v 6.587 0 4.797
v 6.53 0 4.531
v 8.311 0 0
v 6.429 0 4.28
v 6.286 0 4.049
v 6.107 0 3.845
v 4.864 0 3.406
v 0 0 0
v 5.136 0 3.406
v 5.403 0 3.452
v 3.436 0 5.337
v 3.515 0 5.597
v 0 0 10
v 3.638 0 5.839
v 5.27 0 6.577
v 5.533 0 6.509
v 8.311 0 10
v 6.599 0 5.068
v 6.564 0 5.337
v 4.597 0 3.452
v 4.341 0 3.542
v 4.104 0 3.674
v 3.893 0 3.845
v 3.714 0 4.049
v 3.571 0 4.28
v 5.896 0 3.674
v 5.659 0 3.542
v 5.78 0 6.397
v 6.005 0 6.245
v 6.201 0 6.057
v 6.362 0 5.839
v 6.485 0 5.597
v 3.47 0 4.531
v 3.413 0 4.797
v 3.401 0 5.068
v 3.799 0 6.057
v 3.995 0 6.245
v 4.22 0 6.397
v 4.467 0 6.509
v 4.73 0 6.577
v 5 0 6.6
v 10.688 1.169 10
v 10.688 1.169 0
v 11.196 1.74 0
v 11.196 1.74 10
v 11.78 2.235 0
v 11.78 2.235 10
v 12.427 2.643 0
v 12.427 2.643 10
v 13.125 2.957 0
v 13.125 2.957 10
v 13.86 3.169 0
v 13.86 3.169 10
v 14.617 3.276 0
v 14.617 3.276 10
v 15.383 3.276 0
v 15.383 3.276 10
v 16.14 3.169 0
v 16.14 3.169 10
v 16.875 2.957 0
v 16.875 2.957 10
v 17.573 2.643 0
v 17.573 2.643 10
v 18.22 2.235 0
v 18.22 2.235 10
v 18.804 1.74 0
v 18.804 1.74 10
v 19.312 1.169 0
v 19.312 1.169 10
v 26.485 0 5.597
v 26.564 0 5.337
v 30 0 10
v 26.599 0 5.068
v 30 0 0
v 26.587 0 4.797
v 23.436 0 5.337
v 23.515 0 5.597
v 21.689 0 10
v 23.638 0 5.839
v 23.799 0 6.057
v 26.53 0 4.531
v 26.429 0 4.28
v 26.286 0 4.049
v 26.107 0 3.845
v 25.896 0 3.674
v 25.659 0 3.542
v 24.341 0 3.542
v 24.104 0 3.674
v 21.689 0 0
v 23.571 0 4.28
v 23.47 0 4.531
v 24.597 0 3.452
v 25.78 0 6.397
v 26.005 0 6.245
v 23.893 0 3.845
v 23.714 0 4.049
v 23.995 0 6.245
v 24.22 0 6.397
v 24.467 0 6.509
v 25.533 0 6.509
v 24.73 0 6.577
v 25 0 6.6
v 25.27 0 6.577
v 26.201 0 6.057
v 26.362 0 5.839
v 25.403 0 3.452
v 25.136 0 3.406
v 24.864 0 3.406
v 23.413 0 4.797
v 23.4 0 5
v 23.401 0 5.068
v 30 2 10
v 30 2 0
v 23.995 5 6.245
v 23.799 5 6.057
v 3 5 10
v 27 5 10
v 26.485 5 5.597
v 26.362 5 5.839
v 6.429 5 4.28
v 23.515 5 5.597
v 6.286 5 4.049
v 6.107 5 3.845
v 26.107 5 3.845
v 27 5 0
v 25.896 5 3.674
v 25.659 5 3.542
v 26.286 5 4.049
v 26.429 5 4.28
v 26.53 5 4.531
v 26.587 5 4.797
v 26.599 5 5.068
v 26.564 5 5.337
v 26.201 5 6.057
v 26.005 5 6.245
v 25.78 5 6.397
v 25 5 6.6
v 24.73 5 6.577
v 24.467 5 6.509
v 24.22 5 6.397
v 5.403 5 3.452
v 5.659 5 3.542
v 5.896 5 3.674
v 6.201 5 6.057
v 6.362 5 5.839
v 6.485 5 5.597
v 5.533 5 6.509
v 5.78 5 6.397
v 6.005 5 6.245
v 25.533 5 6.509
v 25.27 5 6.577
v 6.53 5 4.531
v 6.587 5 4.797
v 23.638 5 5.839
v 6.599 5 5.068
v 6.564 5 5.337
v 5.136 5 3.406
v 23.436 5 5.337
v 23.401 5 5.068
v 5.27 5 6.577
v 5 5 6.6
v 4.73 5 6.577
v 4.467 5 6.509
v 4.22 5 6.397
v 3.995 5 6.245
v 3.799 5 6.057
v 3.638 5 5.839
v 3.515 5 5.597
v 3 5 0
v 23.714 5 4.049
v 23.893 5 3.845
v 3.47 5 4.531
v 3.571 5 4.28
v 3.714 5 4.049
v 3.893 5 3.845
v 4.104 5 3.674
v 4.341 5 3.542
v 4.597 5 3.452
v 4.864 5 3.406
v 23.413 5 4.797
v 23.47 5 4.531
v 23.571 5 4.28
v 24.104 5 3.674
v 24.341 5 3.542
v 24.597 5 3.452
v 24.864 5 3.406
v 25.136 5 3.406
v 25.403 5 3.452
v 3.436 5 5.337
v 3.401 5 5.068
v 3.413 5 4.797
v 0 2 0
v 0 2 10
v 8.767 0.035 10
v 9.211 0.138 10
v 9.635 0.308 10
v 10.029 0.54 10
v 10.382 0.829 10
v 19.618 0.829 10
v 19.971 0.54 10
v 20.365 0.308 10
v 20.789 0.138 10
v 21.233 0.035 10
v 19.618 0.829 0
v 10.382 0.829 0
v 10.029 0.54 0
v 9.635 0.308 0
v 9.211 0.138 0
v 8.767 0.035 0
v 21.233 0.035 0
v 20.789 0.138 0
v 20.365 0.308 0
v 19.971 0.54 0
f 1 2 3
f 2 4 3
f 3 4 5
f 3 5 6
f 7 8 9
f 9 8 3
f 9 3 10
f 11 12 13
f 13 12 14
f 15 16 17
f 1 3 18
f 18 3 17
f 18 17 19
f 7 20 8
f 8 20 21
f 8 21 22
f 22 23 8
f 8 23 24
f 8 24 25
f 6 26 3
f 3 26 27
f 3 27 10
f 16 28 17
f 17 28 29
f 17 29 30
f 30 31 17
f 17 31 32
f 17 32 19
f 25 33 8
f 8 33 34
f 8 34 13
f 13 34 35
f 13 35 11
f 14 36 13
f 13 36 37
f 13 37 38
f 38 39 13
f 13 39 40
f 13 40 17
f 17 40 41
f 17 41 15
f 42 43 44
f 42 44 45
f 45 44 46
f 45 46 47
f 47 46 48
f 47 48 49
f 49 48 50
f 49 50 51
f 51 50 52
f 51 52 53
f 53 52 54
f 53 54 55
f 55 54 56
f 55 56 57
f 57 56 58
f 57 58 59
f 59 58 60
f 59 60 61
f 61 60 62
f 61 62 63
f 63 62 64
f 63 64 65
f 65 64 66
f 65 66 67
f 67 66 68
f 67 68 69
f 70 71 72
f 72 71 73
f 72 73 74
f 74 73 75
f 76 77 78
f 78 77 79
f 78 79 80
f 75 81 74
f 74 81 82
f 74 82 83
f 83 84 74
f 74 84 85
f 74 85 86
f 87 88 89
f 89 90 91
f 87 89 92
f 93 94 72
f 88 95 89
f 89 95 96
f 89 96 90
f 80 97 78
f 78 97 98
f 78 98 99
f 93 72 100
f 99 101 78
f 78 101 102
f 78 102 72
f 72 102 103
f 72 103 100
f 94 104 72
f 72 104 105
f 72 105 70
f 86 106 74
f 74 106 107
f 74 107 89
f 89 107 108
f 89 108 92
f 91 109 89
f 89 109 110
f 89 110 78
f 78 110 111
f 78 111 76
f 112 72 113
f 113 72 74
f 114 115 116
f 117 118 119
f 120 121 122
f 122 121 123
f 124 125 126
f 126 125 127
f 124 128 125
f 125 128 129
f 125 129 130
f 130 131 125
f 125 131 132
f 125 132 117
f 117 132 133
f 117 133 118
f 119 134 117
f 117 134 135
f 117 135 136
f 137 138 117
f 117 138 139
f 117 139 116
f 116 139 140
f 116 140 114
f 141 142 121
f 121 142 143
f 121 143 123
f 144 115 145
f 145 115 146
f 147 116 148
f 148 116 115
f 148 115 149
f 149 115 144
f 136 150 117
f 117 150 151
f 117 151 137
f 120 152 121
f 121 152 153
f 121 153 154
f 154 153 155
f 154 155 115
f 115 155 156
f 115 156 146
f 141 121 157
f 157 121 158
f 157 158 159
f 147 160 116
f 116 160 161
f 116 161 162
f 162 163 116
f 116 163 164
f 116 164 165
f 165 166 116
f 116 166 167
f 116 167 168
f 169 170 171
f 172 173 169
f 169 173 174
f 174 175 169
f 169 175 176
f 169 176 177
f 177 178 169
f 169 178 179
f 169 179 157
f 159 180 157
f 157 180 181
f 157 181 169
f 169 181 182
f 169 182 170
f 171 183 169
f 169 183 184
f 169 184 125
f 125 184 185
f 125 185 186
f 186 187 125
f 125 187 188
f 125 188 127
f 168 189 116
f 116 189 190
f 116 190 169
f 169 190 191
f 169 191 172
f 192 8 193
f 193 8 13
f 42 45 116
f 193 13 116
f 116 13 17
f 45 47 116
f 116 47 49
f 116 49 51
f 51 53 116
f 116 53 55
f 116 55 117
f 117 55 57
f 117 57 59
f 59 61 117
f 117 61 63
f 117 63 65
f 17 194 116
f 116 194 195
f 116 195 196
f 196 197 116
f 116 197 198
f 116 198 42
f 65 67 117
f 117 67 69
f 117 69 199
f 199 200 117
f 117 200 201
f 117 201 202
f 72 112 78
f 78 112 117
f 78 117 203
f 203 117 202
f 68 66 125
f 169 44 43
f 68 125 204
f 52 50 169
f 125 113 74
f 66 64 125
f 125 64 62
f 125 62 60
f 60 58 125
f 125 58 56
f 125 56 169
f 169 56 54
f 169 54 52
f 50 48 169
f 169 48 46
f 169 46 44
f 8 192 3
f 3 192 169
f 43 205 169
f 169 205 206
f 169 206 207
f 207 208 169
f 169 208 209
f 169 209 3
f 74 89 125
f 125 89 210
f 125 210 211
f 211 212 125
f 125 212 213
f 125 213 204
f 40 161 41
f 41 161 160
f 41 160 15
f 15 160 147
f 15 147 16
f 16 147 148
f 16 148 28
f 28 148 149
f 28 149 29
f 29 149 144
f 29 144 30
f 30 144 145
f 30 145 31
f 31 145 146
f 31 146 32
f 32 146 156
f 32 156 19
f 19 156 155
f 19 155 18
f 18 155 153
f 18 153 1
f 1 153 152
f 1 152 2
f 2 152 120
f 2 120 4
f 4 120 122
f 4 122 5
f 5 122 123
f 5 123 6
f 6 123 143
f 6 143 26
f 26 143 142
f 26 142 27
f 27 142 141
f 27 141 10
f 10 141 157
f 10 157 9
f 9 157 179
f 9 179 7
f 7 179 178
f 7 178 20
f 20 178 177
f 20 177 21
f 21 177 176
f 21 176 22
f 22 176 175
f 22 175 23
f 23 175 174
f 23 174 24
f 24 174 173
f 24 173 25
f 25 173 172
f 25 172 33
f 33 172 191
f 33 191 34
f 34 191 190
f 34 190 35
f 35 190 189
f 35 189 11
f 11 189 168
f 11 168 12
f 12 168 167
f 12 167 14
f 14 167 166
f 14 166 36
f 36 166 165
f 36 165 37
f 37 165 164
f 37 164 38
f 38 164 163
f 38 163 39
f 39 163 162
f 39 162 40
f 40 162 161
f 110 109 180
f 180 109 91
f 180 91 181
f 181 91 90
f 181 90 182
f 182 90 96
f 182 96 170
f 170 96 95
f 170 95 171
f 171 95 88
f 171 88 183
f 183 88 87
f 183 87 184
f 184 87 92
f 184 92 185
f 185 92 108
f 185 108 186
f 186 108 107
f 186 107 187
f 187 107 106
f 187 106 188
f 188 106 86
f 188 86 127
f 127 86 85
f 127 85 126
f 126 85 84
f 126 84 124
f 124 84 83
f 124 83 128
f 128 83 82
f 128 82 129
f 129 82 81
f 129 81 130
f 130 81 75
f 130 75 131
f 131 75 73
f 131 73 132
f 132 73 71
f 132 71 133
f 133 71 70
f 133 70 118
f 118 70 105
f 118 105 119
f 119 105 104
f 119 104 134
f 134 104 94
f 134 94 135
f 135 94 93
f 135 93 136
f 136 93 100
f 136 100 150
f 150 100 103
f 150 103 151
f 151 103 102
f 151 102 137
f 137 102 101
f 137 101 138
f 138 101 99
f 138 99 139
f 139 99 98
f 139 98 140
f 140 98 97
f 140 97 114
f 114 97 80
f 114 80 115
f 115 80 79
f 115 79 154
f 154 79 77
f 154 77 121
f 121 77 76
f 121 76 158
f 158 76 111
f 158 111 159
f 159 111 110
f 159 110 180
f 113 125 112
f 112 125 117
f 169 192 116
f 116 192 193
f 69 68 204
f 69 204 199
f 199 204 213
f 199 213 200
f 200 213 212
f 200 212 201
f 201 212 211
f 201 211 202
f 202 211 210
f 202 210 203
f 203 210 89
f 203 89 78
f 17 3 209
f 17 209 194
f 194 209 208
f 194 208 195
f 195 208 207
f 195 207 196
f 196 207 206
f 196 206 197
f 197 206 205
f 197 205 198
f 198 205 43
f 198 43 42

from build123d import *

# Parameters (mm, degrees)
AUFSATZ_LINEAR_AUSTRAGEN1_DEPTH = 10
SKIZZE4_R                       = 1.6
SCHNITT_LINEAR_AUSTRAGEN1_DEPTH = 10
FASE1_SIZE                      = 3
VERRUNDUNG1_R                   = 3


with BuildPart() as part:
    # Skizze3 → Aufsatz-Linear austragen1 (new body)
    with BuildSketch(Plane.XY):
        with BuildLine():
            Line((0, 0), (0, 5))
            Line((0, 5), (30, 5))
            Line((30, 5), (30, 0))
            Line((30, 0), (20, 0))
            ThreePointArc((20, 0), (15, 3.289673338), (10, 0))
            Line((10, 0), (0, 0))
        make_face()
    extrude(amount=AUFSATZ_LINEAR_AUSTRAGEN1_DEPTH)

    # Skizze4 → Schnitt-Linear austragen1 (cut)
    with BuildSketch(Plane(origin=(0, 5, 0), x_dir=(1, 0, 0), z_dir=(0, 1, 0))):
        with Locations(Location((5, -5, 0), (0, 0, 270))):
            Circle(SKIZZE4_R)
        with Locations(Location((25, -5, 0), (0, 0, 270))):
            Circle(SKIZZE4_R)
    extrude(amount=-SCHNITT_LINEAR_AUSTRAGEN1_DEPTH, mode=Mode.SUBTRACT)

    # Fase1
    fase1_edges = [part.edges().sort_by_distance(p)[0] for p in [
        (0, 5, 5),
        (30, 5, 5),
    ]]
    chamfer(fase1_edges, length=FASE1_SIZE)

    # Verrundung1
    verrundung1_edges = [part.edges().sort_by_distance(p)[0] for p in [
        (20, 0, 5),
        (10, 0, 5),
    ]]
    fillet(verrundung1_edges, radius=VERRUNDUNG1_R)


solid = part.part
